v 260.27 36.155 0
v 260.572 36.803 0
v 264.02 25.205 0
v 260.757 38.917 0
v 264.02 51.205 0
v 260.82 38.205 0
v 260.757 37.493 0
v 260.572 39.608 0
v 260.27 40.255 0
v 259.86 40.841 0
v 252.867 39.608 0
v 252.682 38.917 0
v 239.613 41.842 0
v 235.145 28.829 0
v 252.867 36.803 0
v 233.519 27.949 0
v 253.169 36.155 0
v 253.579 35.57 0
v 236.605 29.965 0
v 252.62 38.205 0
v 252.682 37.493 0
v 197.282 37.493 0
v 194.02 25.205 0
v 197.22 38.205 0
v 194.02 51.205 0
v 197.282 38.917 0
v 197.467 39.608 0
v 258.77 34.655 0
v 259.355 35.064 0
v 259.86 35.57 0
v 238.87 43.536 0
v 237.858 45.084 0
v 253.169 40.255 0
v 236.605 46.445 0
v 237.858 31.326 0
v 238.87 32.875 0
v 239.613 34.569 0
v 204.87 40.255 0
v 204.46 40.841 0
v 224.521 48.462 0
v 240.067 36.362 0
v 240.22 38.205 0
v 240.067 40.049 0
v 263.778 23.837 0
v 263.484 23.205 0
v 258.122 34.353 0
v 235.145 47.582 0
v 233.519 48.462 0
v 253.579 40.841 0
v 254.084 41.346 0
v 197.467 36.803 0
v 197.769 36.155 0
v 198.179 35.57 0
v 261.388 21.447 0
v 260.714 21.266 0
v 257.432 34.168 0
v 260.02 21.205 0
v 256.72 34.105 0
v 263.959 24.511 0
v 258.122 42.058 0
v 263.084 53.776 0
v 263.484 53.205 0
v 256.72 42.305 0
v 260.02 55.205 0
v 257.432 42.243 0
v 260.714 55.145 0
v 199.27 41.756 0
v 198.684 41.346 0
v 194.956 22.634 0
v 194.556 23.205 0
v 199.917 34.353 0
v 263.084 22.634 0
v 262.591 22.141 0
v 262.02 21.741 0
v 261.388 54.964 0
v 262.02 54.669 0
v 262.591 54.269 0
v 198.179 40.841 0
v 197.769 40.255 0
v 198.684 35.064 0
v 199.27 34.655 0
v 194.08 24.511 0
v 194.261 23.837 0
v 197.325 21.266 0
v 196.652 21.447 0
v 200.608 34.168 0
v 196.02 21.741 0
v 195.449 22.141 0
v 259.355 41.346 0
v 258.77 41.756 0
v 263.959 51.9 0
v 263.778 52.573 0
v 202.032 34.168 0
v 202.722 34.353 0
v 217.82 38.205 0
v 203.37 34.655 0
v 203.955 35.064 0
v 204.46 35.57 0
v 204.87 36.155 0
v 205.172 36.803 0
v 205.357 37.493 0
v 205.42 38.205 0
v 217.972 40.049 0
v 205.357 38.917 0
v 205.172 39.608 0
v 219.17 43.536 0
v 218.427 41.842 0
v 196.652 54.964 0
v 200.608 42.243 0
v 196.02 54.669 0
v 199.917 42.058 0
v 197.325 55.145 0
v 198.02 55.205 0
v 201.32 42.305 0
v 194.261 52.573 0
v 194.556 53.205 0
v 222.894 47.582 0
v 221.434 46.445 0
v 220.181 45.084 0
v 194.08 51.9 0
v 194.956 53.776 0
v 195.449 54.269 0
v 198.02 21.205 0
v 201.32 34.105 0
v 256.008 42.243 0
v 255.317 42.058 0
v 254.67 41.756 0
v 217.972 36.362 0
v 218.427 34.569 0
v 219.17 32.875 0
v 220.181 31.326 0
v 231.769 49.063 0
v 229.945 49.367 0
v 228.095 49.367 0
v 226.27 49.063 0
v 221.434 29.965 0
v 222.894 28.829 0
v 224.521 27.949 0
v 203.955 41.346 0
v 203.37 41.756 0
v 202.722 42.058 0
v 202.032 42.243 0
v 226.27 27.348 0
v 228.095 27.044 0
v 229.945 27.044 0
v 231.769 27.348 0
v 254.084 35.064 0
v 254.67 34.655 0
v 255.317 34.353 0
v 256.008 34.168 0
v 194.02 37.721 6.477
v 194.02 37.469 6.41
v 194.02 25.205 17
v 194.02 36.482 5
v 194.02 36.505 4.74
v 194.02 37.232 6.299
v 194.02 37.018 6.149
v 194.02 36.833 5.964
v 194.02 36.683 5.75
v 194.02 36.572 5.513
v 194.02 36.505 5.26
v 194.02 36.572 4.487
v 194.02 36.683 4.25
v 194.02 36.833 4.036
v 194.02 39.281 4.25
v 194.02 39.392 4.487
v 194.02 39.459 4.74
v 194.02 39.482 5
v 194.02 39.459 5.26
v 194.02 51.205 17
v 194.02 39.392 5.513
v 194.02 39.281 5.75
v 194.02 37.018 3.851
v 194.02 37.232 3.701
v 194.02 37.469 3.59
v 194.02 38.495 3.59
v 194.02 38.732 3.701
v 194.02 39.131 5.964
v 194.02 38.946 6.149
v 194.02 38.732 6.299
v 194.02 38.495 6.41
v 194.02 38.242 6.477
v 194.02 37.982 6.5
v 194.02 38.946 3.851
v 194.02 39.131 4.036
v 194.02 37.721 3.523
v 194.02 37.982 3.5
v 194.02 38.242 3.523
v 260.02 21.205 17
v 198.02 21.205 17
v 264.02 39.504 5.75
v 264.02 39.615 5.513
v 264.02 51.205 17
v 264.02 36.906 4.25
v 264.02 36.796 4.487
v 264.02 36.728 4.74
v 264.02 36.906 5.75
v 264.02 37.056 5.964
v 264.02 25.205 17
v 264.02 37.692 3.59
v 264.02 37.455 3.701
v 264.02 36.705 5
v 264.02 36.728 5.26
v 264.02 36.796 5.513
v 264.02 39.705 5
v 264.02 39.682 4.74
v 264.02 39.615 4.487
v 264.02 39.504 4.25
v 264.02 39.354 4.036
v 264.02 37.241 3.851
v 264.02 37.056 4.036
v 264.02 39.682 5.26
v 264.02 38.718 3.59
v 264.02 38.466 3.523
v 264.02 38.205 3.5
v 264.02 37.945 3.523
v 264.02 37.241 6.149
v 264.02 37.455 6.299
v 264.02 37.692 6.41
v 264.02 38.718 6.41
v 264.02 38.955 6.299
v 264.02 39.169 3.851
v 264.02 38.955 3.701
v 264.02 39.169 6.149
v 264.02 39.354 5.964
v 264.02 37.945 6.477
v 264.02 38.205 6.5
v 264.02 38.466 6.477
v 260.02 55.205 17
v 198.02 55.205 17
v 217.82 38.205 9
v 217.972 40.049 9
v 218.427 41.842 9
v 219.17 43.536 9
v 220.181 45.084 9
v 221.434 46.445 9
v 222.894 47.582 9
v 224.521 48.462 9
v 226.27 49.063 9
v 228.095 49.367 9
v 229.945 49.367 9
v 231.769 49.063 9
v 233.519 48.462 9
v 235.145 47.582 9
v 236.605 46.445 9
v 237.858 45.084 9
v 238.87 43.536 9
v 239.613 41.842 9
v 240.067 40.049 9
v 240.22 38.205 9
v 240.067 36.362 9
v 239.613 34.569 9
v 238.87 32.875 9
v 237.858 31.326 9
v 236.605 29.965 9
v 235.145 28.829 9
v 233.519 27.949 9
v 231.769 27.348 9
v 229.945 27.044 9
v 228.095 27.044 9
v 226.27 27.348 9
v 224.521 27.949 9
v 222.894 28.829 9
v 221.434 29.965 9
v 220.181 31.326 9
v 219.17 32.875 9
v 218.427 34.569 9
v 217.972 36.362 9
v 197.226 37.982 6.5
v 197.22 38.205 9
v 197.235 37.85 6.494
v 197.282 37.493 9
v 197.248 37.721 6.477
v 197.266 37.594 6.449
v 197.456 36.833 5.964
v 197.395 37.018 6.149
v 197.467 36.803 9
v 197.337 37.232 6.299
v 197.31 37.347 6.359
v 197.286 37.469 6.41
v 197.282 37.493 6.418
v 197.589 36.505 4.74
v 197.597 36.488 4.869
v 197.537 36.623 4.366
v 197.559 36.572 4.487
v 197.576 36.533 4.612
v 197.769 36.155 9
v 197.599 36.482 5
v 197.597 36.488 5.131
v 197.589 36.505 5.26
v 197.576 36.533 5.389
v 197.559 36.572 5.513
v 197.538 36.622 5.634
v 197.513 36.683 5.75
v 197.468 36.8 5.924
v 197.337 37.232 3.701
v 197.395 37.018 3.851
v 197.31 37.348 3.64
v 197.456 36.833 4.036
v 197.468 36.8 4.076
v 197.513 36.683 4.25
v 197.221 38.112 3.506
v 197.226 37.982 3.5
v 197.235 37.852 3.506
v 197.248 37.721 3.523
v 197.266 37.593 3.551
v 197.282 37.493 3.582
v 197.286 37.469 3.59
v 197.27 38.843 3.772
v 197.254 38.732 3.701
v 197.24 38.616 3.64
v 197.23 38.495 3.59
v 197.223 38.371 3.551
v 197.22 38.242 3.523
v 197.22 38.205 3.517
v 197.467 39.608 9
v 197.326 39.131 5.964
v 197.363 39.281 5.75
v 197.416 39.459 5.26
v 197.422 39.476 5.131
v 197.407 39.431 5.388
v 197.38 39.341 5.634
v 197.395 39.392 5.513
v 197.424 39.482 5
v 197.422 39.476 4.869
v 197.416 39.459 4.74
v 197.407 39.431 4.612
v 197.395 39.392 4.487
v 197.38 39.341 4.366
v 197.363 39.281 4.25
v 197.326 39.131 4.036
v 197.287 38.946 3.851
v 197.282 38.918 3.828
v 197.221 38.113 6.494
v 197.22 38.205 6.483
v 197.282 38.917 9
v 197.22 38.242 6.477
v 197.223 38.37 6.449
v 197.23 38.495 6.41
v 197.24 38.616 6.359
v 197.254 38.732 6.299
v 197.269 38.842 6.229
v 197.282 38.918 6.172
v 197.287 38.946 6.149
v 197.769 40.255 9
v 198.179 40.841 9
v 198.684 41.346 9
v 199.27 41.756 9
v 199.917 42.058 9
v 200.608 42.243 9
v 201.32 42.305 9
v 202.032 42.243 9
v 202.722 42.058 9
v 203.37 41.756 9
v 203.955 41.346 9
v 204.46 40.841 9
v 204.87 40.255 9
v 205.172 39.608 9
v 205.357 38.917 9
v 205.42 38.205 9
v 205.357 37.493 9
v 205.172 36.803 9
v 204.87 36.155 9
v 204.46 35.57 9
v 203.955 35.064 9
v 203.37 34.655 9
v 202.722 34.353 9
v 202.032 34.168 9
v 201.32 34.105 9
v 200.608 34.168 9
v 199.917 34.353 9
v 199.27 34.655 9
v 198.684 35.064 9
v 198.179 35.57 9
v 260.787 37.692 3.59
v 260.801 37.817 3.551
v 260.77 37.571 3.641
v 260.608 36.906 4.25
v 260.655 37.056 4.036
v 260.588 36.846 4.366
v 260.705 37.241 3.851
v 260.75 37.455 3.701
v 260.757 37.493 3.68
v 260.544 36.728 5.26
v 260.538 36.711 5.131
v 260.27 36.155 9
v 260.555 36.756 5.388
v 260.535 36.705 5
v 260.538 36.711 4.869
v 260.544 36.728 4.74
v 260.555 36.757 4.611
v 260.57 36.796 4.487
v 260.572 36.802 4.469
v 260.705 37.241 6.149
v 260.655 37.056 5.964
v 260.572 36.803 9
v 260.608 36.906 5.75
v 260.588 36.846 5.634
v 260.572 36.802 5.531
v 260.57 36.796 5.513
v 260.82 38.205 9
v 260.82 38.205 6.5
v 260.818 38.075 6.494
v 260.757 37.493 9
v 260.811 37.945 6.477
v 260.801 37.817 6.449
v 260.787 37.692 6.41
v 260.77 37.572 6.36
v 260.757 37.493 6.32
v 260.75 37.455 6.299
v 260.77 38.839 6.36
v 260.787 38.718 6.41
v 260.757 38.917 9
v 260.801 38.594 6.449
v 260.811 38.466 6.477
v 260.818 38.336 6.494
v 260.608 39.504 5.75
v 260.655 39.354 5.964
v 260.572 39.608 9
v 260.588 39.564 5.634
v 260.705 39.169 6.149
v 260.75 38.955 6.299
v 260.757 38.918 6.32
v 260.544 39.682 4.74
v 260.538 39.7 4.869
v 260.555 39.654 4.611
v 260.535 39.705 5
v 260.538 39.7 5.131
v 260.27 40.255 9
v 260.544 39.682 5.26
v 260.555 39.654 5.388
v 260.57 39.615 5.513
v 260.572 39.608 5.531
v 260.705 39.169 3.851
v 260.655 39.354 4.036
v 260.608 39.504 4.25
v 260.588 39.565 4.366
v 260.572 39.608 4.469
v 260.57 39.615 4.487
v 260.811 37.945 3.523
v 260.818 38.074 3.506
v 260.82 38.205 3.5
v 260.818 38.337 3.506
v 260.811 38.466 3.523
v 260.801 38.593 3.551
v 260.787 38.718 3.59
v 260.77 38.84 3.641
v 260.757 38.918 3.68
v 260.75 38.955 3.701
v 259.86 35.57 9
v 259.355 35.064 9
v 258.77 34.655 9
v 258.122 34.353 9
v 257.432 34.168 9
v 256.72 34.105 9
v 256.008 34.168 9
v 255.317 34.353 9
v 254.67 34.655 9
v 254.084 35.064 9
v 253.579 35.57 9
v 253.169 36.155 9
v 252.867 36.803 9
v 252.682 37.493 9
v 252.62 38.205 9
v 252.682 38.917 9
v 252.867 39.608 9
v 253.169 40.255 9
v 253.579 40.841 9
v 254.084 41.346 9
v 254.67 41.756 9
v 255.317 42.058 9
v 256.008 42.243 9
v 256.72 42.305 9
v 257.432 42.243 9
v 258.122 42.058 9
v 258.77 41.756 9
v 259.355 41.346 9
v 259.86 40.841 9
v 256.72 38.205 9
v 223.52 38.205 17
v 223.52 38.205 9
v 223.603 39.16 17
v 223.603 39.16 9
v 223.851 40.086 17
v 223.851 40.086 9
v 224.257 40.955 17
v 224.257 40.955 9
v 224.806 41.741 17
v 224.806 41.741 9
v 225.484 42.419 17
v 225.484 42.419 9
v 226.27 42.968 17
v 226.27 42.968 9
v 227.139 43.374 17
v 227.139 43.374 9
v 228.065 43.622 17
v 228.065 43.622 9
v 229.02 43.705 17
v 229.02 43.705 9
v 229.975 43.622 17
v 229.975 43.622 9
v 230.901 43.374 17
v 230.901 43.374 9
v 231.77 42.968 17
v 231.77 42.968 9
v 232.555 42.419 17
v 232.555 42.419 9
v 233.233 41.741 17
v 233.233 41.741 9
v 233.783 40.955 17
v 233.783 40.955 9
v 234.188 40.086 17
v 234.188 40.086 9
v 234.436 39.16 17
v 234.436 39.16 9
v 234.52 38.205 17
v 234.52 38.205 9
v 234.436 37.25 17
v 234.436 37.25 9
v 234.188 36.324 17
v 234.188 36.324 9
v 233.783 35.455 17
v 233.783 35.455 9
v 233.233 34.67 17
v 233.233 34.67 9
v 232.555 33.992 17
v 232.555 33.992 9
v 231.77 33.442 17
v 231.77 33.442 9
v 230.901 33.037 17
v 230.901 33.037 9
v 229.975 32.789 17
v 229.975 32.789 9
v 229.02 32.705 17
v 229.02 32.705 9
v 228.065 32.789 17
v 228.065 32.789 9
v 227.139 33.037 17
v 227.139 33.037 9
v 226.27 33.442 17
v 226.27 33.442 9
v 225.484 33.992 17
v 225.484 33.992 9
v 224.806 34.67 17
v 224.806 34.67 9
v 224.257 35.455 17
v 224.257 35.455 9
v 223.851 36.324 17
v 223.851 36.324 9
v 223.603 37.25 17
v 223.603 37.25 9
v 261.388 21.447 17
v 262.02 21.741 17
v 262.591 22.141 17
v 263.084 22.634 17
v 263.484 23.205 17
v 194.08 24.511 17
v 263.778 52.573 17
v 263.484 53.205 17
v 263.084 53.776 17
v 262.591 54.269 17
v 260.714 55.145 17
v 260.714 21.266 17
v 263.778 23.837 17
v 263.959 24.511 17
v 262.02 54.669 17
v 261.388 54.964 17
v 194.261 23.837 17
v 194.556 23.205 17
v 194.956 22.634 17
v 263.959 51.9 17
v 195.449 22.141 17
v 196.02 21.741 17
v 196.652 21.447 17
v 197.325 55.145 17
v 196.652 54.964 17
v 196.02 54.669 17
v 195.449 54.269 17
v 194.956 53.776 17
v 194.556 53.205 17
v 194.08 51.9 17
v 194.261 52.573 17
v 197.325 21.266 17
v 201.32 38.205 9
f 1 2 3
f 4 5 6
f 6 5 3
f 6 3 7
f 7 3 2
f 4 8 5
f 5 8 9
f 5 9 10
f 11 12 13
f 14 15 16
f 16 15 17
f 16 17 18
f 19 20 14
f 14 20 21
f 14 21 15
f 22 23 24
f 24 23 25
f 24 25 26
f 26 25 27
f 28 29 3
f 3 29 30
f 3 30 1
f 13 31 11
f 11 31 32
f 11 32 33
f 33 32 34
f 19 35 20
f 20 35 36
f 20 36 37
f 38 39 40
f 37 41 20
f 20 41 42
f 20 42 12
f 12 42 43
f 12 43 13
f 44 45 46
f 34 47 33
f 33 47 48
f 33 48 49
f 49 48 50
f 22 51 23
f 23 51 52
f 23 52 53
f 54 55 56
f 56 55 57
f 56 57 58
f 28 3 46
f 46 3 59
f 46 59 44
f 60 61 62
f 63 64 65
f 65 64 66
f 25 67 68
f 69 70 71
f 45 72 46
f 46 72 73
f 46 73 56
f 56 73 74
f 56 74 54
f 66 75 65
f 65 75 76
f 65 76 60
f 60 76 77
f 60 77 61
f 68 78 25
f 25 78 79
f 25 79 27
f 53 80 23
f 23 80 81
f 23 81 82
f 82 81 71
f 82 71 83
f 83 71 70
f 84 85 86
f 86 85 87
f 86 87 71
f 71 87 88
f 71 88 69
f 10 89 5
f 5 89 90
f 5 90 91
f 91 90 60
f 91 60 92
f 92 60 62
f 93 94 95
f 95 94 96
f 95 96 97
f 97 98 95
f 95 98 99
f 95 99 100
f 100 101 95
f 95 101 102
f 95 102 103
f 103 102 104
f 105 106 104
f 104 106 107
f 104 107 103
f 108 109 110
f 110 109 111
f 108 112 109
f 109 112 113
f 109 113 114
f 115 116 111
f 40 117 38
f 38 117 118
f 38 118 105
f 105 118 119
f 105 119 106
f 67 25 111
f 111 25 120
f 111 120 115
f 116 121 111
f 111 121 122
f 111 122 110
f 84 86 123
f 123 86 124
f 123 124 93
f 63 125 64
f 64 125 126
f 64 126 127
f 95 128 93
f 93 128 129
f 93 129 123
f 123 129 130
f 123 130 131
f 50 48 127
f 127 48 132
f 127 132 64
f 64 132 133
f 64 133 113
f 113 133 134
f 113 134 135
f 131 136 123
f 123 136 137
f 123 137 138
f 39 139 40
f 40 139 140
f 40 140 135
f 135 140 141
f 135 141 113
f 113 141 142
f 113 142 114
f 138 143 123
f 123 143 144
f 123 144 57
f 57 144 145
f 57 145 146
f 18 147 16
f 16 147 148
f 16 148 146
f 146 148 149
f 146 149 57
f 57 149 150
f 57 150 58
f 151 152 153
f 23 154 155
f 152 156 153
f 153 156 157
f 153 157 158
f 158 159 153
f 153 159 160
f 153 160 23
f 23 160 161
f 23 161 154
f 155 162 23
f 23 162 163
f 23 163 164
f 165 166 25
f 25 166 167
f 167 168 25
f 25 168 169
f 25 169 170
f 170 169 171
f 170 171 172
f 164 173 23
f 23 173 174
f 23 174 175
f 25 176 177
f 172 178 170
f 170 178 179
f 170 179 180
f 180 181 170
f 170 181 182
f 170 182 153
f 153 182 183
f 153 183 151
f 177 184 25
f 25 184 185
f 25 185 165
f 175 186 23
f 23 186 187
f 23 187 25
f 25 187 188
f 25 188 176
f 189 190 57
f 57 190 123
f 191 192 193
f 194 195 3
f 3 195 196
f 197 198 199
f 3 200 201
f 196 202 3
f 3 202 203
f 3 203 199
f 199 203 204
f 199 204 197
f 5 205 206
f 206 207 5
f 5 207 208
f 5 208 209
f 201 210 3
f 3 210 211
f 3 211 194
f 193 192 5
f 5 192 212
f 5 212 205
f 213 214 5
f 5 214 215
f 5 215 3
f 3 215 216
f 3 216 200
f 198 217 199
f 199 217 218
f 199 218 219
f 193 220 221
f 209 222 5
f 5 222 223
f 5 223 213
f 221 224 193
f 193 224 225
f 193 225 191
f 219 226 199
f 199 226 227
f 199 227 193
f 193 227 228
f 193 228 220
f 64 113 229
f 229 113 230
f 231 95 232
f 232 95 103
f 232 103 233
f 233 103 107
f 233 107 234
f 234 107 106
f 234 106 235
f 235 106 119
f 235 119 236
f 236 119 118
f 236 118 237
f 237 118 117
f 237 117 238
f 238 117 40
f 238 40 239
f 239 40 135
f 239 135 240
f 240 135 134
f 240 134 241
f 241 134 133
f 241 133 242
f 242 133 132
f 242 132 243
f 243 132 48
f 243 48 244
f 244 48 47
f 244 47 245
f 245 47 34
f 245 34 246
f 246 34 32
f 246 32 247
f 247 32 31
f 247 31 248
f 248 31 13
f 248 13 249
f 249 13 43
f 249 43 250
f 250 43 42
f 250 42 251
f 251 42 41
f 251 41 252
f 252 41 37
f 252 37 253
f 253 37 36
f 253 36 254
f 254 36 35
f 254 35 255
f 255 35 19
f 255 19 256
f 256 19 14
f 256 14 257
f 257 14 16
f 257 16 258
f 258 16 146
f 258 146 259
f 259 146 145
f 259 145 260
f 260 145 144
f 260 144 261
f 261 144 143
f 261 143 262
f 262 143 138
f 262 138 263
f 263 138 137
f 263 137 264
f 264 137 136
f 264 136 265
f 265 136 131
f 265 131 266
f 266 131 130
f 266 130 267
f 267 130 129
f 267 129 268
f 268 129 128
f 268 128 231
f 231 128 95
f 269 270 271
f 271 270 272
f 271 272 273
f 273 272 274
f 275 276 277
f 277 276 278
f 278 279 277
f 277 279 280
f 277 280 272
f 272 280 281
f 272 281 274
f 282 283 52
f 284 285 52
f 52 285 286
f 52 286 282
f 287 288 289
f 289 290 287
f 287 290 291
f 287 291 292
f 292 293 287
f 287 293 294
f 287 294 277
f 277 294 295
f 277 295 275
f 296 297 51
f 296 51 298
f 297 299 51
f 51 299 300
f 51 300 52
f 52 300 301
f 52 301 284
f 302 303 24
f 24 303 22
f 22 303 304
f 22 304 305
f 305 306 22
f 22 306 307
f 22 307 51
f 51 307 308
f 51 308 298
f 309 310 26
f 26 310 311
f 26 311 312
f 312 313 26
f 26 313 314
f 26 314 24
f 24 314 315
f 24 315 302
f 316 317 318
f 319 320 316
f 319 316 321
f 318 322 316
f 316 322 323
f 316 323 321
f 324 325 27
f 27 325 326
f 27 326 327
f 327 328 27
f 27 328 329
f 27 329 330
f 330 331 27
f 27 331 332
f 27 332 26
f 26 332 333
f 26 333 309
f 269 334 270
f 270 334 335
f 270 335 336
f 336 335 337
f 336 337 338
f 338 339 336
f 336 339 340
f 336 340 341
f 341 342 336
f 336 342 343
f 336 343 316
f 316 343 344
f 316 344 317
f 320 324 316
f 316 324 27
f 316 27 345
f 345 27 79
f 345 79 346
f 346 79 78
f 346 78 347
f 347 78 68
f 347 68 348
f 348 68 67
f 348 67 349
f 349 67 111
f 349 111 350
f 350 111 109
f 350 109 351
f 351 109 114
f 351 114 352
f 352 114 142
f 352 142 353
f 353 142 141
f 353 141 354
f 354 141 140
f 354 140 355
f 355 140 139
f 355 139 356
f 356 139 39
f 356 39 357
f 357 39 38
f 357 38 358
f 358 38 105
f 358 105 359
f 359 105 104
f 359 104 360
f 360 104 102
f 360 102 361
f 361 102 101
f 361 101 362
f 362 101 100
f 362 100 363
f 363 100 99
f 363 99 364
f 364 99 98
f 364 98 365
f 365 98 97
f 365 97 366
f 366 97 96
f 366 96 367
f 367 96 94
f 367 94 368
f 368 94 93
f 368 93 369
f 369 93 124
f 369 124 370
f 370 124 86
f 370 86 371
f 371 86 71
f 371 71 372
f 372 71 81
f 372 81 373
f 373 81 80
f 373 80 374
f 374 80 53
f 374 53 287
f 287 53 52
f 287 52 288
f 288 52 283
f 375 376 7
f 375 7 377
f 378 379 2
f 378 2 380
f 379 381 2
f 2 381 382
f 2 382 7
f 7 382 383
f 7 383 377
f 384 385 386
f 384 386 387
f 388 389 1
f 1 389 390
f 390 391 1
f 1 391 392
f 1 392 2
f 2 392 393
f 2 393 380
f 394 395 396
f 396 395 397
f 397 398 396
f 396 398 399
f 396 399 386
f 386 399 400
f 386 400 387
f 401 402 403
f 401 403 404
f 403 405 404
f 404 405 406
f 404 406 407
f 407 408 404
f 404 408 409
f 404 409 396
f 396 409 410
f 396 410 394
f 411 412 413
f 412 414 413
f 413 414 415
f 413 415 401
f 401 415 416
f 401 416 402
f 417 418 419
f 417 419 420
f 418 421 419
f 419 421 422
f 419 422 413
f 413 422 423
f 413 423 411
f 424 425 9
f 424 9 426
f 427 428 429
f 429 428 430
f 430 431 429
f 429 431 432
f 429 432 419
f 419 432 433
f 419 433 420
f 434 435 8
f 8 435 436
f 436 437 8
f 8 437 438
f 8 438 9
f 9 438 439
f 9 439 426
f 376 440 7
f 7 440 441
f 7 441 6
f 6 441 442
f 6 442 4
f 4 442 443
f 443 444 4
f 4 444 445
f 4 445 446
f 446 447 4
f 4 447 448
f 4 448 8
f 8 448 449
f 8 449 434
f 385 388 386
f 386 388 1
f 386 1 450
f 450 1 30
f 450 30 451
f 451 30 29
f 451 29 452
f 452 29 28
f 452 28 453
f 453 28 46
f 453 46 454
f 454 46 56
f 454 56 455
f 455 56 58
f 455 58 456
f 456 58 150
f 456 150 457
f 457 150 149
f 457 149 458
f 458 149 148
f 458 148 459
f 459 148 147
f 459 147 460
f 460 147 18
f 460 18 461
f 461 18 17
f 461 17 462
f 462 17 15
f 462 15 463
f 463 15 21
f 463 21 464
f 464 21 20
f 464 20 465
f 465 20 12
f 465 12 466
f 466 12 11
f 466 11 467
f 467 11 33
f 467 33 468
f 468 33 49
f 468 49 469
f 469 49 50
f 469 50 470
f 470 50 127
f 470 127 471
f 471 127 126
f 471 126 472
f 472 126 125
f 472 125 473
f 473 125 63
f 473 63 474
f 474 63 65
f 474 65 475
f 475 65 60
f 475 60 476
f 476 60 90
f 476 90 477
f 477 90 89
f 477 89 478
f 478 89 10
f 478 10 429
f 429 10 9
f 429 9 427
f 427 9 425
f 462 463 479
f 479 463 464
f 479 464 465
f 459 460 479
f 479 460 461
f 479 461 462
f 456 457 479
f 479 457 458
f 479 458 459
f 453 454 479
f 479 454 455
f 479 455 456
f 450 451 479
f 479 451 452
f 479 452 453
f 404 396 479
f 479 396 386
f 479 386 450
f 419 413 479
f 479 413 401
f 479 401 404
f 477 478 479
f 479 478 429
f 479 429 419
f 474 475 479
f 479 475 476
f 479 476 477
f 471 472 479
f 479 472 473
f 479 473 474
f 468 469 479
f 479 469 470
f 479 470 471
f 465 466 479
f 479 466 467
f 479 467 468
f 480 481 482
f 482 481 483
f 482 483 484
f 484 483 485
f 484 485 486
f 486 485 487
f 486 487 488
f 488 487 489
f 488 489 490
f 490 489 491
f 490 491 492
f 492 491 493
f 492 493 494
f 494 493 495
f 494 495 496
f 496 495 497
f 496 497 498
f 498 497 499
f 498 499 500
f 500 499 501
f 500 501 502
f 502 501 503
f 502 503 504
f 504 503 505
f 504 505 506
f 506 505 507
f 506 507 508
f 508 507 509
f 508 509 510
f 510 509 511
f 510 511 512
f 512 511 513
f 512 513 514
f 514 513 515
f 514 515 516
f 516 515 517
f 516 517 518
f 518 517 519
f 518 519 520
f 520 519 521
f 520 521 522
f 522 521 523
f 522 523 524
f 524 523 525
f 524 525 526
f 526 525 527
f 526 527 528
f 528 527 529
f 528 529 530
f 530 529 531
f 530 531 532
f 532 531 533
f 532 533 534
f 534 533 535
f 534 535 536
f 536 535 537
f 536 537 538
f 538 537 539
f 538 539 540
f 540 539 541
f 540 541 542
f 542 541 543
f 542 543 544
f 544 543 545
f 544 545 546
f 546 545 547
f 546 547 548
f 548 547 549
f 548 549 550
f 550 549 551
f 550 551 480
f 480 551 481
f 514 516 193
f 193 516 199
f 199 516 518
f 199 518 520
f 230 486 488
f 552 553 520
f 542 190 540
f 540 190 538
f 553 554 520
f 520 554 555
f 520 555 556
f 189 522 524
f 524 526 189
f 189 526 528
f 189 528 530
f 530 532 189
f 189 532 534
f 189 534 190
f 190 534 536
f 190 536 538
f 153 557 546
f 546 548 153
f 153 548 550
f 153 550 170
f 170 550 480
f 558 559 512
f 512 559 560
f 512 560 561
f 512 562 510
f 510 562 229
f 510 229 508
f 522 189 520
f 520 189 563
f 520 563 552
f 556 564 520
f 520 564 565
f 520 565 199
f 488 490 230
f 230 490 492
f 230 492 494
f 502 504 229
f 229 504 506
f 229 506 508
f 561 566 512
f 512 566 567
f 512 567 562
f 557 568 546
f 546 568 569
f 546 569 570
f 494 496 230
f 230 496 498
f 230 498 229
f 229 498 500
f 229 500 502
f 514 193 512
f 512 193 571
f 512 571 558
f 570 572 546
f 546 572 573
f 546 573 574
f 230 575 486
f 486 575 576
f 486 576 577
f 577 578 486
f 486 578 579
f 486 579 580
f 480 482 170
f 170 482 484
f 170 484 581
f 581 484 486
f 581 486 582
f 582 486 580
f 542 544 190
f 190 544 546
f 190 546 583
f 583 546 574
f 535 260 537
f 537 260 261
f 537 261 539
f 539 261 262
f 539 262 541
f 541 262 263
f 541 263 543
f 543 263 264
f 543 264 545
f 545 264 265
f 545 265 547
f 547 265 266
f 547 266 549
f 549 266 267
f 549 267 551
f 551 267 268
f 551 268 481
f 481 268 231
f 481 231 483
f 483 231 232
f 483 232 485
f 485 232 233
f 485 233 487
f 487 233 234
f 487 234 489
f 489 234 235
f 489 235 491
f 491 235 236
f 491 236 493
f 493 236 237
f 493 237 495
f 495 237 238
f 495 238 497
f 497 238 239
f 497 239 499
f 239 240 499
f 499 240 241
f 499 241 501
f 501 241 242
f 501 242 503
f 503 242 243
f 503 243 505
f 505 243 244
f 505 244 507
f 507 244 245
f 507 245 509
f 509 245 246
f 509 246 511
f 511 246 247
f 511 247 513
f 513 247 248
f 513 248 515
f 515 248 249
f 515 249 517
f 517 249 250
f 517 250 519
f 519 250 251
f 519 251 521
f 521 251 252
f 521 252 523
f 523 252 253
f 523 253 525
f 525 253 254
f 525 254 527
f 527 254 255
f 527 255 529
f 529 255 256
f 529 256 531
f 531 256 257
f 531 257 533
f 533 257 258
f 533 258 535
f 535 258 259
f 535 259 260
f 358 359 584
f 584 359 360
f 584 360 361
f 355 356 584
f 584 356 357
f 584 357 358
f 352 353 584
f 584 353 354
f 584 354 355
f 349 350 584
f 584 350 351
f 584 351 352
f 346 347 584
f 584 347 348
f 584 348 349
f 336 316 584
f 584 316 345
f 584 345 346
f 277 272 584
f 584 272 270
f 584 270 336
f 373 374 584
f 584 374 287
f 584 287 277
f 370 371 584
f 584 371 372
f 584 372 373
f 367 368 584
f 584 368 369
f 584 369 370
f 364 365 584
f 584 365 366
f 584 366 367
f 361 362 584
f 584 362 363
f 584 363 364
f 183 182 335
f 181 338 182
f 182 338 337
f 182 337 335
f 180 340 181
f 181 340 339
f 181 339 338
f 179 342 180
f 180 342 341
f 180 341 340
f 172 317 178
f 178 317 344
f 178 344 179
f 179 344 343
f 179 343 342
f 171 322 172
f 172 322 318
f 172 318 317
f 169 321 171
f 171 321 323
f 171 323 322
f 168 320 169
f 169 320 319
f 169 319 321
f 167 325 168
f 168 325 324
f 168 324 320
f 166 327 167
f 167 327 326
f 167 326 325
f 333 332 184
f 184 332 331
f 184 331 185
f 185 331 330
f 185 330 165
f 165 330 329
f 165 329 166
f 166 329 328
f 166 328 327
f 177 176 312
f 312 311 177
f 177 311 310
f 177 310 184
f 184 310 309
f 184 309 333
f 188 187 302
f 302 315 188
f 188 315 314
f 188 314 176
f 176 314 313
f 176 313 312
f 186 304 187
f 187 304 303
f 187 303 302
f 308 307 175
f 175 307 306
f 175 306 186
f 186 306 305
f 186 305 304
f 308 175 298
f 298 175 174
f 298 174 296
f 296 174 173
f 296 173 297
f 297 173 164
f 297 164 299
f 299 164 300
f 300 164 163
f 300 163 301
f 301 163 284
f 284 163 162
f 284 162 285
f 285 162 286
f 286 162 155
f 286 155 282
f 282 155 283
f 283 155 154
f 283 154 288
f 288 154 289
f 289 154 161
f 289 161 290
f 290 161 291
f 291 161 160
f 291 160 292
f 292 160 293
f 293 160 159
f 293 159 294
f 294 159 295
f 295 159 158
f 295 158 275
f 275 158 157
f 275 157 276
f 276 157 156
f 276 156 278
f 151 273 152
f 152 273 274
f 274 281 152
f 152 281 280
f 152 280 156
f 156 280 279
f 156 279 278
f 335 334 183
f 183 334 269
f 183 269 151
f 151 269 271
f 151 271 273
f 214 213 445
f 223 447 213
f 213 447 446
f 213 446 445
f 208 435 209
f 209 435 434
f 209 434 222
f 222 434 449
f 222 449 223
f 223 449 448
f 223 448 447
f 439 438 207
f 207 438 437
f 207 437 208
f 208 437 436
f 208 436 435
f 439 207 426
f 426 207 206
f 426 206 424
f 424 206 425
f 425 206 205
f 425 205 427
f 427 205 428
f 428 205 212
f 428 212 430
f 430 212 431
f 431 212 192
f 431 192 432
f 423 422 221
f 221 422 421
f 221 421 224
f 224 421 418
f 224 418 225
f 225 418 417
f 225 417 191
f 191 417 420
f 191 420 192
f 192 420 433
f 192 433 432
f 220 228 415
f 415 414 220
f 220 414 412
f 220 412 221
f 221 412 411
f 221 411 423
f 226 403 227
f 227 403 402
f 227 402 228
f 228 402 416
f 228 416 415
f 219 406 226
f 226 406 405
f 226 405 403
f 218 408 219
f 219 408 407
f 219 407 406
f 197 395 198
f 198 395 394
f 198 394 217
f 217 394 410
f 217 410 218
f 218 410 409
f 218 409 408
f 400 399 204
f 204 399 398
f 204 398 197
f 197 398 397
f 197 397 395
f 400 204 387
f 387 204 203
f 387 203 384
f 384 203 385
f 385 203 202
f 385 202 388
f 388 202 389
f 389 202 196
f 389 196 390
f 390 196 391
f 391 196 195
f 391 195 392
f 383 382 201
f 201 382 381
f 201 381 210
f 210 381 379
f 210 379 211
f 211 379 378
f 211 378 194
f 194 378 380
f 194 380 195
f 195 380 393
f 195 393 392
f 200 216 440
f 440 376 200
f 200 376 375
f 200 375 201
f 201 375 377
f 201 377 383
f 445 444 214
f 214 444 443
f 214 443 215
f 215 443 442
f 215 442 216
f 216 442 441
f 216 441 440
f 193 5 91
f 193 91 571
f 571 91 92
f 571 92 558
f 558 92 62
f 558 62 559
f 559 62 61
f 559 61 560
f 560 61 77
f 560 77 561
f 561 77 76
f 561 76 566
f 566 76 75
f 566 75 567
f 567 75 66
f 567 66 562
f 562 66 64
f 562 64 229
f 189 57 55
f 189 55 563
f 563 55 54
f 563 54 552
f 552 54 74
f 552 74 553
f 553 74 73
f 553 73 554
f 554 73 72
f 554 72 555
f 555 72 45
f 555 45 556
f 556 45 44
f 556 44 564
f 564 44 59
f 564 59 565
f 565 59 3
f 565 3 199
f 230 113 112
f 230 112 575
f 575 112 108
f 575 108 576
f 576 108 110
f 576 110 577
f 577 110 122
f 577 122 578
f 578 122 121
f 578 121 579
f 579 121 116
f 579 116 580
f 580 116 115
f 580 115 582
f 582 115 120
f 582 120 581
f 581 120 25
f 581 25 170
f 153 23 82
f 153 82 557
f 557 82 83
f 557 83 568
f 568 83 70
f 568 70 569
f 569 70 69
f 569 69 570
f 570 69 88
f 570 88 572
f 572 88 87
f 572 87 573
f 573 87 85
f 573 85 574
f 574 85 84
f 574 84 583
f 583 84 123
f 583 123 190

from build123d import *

# Parameters (mm, degrees)
CROQUIS1_W              = 70
CROQUIS1_H              = 34
CROQUIS1_R              = 11.2
CROQUIS1_R_2            = 4.1
SALIENTE_EXTRUIR1_DEPTH = 9
CROQUIS2_W              = 70
CROQUIS2_H              = 34
CROQUIS2_R              = 5.5
SALIENTE_EXTRUIR2_DEPTH = 8
CUT_EXTRUDE1_REACH      = 92.756
CUT_EXTRUDE1_END_RADIUS = 4.1
SKETCH1_R               = 1.5
CUT_EXTRUDE2_REACH      = 92.756
CUT_EXTRUDE2_END_RADIUS = 4.1
SKETCH2_R               = 1.5
FILLET1_R               = 4


with BuildPart() as part:
    # Croquis1 → Saliente-Extruir1 (new body)
    with BuildSketch(Plane.XY):
        with Locations((229.019677403, 38.205269585)):
            Rectangle(CROQUIS1_W, CROQUIS1_H)
        with Locations((229.019677403, 38.205269585)):
            Circle(CROQUIS1_R, mode=Mode.SUBTRACT)
        with Locations((201.319677403, 38.205269585)):
            Circle(CROQUIS1_R_2, mode=Mode.SUBTRACT)
        with Locations(Location((256.719677403, 38.205269585, 0), (0, 0, 180))):
            Circle(CROQUIS1_R_2, mode=Mode.SUBTRACT)
    extrude(amount=SALIENTE_EXTRUIR1_DEPTH)

    # Croquis2 → Saliente-Extruir2 (add)
    with BuildSketch(Plane.XY.offset(9)):
        with Locations((229.019677403, 38.205269585)):
            Rectangle(CROQUIS2_W, CROQUIS2_H)
        with Locations((229.019677403, 38.205269585)):
            Circle(CROQUIS2_R, mode=Mode.SUBTRACT)
    extrude(amount=SALIENTE_EXTRUIR2_DEPTH)

    # Cut-Extrude1: up to this cylinder (the profile starts outside it)
    cut_extrude1_end = Plane(origin=(201.319677403, 38.205269585, 5), z_dir=(0, 0, -1)) * Cylinder(CUT_EXTRUDE1_END_RADIUS, 194.712, mode=Mode.PRIVATE)
    # Sketch1 → Cut-Extrude1 (cut, up to the surface)
    with BuildSketch(Plane.ZY.offset(-194.019677403), mode=Mode.PRIVATE) as cut_extrude1_sk1:
        with Locations((5, 37.981969781)):
            Circle(SKETCH1_R)
    cut_extrude1_tool1 = extrude(cut_extrude1_sk1.sketch, amount=-CUT_EXTRUDE1_REACH, mode=Mode.PRIVATE) - cut_extrude1_end
    add(cut_extrude1_tool1.solids().sort_by_distance((194.019677, 37.98197, 5))[0], mode=Mode.SUBTRACT)

    # Cut-Extrude2: up to this cylinder (the profile starts outside it)
    cut_extrude2_end = Plane(origin=(256.719677403, 38.205269585, 5), z_dir=(0, 0, -1)) * Cylinder(CUT_EXTRUDE2_END_RADIUS, 194.712, mode=Mode.PRIVATE)
    # Sketch2 → Cut-Extrude2 (cut, up to the surface)
    with BuildSketch(Plane(origin=(264.019677403, 0, 0), x_dir=(0, 0, -1), z_dir=(1, 0, 0)), mode=Mode.PRIVATE) as cut_extrude2_sk1:
        with Locations((-5, 38.205269585)):
            Circle(SKETCH2_R)
    cut_extrude2_tool1 = extrude(cut_extrude2_sk1.sketch, amount=-CUT_EXTRUDE2_REACH, mode=Mode.PRIVATE) - cut_extrude2_end
    add(cut_extrude2_tool1.solids().sort_by_distance((264.019677, 38.20527, 5))[0], mode=Mode.SUBTRACT)

    # Fillet1
    fillet1_edges = [part.edges().sort_by_distance(p)[0] for p in [
        (194.019677403, 55.205269585, 8.5),
        (264.019677403, 55.205269585, 8.5),
        (264.019677403, 21.205269585, 8.5),
        (194.019677403, 21.205269585, 8.5),
    ]]
    fillet(fillet1_edges, radius=FILLET1_R)


solid = part.part
